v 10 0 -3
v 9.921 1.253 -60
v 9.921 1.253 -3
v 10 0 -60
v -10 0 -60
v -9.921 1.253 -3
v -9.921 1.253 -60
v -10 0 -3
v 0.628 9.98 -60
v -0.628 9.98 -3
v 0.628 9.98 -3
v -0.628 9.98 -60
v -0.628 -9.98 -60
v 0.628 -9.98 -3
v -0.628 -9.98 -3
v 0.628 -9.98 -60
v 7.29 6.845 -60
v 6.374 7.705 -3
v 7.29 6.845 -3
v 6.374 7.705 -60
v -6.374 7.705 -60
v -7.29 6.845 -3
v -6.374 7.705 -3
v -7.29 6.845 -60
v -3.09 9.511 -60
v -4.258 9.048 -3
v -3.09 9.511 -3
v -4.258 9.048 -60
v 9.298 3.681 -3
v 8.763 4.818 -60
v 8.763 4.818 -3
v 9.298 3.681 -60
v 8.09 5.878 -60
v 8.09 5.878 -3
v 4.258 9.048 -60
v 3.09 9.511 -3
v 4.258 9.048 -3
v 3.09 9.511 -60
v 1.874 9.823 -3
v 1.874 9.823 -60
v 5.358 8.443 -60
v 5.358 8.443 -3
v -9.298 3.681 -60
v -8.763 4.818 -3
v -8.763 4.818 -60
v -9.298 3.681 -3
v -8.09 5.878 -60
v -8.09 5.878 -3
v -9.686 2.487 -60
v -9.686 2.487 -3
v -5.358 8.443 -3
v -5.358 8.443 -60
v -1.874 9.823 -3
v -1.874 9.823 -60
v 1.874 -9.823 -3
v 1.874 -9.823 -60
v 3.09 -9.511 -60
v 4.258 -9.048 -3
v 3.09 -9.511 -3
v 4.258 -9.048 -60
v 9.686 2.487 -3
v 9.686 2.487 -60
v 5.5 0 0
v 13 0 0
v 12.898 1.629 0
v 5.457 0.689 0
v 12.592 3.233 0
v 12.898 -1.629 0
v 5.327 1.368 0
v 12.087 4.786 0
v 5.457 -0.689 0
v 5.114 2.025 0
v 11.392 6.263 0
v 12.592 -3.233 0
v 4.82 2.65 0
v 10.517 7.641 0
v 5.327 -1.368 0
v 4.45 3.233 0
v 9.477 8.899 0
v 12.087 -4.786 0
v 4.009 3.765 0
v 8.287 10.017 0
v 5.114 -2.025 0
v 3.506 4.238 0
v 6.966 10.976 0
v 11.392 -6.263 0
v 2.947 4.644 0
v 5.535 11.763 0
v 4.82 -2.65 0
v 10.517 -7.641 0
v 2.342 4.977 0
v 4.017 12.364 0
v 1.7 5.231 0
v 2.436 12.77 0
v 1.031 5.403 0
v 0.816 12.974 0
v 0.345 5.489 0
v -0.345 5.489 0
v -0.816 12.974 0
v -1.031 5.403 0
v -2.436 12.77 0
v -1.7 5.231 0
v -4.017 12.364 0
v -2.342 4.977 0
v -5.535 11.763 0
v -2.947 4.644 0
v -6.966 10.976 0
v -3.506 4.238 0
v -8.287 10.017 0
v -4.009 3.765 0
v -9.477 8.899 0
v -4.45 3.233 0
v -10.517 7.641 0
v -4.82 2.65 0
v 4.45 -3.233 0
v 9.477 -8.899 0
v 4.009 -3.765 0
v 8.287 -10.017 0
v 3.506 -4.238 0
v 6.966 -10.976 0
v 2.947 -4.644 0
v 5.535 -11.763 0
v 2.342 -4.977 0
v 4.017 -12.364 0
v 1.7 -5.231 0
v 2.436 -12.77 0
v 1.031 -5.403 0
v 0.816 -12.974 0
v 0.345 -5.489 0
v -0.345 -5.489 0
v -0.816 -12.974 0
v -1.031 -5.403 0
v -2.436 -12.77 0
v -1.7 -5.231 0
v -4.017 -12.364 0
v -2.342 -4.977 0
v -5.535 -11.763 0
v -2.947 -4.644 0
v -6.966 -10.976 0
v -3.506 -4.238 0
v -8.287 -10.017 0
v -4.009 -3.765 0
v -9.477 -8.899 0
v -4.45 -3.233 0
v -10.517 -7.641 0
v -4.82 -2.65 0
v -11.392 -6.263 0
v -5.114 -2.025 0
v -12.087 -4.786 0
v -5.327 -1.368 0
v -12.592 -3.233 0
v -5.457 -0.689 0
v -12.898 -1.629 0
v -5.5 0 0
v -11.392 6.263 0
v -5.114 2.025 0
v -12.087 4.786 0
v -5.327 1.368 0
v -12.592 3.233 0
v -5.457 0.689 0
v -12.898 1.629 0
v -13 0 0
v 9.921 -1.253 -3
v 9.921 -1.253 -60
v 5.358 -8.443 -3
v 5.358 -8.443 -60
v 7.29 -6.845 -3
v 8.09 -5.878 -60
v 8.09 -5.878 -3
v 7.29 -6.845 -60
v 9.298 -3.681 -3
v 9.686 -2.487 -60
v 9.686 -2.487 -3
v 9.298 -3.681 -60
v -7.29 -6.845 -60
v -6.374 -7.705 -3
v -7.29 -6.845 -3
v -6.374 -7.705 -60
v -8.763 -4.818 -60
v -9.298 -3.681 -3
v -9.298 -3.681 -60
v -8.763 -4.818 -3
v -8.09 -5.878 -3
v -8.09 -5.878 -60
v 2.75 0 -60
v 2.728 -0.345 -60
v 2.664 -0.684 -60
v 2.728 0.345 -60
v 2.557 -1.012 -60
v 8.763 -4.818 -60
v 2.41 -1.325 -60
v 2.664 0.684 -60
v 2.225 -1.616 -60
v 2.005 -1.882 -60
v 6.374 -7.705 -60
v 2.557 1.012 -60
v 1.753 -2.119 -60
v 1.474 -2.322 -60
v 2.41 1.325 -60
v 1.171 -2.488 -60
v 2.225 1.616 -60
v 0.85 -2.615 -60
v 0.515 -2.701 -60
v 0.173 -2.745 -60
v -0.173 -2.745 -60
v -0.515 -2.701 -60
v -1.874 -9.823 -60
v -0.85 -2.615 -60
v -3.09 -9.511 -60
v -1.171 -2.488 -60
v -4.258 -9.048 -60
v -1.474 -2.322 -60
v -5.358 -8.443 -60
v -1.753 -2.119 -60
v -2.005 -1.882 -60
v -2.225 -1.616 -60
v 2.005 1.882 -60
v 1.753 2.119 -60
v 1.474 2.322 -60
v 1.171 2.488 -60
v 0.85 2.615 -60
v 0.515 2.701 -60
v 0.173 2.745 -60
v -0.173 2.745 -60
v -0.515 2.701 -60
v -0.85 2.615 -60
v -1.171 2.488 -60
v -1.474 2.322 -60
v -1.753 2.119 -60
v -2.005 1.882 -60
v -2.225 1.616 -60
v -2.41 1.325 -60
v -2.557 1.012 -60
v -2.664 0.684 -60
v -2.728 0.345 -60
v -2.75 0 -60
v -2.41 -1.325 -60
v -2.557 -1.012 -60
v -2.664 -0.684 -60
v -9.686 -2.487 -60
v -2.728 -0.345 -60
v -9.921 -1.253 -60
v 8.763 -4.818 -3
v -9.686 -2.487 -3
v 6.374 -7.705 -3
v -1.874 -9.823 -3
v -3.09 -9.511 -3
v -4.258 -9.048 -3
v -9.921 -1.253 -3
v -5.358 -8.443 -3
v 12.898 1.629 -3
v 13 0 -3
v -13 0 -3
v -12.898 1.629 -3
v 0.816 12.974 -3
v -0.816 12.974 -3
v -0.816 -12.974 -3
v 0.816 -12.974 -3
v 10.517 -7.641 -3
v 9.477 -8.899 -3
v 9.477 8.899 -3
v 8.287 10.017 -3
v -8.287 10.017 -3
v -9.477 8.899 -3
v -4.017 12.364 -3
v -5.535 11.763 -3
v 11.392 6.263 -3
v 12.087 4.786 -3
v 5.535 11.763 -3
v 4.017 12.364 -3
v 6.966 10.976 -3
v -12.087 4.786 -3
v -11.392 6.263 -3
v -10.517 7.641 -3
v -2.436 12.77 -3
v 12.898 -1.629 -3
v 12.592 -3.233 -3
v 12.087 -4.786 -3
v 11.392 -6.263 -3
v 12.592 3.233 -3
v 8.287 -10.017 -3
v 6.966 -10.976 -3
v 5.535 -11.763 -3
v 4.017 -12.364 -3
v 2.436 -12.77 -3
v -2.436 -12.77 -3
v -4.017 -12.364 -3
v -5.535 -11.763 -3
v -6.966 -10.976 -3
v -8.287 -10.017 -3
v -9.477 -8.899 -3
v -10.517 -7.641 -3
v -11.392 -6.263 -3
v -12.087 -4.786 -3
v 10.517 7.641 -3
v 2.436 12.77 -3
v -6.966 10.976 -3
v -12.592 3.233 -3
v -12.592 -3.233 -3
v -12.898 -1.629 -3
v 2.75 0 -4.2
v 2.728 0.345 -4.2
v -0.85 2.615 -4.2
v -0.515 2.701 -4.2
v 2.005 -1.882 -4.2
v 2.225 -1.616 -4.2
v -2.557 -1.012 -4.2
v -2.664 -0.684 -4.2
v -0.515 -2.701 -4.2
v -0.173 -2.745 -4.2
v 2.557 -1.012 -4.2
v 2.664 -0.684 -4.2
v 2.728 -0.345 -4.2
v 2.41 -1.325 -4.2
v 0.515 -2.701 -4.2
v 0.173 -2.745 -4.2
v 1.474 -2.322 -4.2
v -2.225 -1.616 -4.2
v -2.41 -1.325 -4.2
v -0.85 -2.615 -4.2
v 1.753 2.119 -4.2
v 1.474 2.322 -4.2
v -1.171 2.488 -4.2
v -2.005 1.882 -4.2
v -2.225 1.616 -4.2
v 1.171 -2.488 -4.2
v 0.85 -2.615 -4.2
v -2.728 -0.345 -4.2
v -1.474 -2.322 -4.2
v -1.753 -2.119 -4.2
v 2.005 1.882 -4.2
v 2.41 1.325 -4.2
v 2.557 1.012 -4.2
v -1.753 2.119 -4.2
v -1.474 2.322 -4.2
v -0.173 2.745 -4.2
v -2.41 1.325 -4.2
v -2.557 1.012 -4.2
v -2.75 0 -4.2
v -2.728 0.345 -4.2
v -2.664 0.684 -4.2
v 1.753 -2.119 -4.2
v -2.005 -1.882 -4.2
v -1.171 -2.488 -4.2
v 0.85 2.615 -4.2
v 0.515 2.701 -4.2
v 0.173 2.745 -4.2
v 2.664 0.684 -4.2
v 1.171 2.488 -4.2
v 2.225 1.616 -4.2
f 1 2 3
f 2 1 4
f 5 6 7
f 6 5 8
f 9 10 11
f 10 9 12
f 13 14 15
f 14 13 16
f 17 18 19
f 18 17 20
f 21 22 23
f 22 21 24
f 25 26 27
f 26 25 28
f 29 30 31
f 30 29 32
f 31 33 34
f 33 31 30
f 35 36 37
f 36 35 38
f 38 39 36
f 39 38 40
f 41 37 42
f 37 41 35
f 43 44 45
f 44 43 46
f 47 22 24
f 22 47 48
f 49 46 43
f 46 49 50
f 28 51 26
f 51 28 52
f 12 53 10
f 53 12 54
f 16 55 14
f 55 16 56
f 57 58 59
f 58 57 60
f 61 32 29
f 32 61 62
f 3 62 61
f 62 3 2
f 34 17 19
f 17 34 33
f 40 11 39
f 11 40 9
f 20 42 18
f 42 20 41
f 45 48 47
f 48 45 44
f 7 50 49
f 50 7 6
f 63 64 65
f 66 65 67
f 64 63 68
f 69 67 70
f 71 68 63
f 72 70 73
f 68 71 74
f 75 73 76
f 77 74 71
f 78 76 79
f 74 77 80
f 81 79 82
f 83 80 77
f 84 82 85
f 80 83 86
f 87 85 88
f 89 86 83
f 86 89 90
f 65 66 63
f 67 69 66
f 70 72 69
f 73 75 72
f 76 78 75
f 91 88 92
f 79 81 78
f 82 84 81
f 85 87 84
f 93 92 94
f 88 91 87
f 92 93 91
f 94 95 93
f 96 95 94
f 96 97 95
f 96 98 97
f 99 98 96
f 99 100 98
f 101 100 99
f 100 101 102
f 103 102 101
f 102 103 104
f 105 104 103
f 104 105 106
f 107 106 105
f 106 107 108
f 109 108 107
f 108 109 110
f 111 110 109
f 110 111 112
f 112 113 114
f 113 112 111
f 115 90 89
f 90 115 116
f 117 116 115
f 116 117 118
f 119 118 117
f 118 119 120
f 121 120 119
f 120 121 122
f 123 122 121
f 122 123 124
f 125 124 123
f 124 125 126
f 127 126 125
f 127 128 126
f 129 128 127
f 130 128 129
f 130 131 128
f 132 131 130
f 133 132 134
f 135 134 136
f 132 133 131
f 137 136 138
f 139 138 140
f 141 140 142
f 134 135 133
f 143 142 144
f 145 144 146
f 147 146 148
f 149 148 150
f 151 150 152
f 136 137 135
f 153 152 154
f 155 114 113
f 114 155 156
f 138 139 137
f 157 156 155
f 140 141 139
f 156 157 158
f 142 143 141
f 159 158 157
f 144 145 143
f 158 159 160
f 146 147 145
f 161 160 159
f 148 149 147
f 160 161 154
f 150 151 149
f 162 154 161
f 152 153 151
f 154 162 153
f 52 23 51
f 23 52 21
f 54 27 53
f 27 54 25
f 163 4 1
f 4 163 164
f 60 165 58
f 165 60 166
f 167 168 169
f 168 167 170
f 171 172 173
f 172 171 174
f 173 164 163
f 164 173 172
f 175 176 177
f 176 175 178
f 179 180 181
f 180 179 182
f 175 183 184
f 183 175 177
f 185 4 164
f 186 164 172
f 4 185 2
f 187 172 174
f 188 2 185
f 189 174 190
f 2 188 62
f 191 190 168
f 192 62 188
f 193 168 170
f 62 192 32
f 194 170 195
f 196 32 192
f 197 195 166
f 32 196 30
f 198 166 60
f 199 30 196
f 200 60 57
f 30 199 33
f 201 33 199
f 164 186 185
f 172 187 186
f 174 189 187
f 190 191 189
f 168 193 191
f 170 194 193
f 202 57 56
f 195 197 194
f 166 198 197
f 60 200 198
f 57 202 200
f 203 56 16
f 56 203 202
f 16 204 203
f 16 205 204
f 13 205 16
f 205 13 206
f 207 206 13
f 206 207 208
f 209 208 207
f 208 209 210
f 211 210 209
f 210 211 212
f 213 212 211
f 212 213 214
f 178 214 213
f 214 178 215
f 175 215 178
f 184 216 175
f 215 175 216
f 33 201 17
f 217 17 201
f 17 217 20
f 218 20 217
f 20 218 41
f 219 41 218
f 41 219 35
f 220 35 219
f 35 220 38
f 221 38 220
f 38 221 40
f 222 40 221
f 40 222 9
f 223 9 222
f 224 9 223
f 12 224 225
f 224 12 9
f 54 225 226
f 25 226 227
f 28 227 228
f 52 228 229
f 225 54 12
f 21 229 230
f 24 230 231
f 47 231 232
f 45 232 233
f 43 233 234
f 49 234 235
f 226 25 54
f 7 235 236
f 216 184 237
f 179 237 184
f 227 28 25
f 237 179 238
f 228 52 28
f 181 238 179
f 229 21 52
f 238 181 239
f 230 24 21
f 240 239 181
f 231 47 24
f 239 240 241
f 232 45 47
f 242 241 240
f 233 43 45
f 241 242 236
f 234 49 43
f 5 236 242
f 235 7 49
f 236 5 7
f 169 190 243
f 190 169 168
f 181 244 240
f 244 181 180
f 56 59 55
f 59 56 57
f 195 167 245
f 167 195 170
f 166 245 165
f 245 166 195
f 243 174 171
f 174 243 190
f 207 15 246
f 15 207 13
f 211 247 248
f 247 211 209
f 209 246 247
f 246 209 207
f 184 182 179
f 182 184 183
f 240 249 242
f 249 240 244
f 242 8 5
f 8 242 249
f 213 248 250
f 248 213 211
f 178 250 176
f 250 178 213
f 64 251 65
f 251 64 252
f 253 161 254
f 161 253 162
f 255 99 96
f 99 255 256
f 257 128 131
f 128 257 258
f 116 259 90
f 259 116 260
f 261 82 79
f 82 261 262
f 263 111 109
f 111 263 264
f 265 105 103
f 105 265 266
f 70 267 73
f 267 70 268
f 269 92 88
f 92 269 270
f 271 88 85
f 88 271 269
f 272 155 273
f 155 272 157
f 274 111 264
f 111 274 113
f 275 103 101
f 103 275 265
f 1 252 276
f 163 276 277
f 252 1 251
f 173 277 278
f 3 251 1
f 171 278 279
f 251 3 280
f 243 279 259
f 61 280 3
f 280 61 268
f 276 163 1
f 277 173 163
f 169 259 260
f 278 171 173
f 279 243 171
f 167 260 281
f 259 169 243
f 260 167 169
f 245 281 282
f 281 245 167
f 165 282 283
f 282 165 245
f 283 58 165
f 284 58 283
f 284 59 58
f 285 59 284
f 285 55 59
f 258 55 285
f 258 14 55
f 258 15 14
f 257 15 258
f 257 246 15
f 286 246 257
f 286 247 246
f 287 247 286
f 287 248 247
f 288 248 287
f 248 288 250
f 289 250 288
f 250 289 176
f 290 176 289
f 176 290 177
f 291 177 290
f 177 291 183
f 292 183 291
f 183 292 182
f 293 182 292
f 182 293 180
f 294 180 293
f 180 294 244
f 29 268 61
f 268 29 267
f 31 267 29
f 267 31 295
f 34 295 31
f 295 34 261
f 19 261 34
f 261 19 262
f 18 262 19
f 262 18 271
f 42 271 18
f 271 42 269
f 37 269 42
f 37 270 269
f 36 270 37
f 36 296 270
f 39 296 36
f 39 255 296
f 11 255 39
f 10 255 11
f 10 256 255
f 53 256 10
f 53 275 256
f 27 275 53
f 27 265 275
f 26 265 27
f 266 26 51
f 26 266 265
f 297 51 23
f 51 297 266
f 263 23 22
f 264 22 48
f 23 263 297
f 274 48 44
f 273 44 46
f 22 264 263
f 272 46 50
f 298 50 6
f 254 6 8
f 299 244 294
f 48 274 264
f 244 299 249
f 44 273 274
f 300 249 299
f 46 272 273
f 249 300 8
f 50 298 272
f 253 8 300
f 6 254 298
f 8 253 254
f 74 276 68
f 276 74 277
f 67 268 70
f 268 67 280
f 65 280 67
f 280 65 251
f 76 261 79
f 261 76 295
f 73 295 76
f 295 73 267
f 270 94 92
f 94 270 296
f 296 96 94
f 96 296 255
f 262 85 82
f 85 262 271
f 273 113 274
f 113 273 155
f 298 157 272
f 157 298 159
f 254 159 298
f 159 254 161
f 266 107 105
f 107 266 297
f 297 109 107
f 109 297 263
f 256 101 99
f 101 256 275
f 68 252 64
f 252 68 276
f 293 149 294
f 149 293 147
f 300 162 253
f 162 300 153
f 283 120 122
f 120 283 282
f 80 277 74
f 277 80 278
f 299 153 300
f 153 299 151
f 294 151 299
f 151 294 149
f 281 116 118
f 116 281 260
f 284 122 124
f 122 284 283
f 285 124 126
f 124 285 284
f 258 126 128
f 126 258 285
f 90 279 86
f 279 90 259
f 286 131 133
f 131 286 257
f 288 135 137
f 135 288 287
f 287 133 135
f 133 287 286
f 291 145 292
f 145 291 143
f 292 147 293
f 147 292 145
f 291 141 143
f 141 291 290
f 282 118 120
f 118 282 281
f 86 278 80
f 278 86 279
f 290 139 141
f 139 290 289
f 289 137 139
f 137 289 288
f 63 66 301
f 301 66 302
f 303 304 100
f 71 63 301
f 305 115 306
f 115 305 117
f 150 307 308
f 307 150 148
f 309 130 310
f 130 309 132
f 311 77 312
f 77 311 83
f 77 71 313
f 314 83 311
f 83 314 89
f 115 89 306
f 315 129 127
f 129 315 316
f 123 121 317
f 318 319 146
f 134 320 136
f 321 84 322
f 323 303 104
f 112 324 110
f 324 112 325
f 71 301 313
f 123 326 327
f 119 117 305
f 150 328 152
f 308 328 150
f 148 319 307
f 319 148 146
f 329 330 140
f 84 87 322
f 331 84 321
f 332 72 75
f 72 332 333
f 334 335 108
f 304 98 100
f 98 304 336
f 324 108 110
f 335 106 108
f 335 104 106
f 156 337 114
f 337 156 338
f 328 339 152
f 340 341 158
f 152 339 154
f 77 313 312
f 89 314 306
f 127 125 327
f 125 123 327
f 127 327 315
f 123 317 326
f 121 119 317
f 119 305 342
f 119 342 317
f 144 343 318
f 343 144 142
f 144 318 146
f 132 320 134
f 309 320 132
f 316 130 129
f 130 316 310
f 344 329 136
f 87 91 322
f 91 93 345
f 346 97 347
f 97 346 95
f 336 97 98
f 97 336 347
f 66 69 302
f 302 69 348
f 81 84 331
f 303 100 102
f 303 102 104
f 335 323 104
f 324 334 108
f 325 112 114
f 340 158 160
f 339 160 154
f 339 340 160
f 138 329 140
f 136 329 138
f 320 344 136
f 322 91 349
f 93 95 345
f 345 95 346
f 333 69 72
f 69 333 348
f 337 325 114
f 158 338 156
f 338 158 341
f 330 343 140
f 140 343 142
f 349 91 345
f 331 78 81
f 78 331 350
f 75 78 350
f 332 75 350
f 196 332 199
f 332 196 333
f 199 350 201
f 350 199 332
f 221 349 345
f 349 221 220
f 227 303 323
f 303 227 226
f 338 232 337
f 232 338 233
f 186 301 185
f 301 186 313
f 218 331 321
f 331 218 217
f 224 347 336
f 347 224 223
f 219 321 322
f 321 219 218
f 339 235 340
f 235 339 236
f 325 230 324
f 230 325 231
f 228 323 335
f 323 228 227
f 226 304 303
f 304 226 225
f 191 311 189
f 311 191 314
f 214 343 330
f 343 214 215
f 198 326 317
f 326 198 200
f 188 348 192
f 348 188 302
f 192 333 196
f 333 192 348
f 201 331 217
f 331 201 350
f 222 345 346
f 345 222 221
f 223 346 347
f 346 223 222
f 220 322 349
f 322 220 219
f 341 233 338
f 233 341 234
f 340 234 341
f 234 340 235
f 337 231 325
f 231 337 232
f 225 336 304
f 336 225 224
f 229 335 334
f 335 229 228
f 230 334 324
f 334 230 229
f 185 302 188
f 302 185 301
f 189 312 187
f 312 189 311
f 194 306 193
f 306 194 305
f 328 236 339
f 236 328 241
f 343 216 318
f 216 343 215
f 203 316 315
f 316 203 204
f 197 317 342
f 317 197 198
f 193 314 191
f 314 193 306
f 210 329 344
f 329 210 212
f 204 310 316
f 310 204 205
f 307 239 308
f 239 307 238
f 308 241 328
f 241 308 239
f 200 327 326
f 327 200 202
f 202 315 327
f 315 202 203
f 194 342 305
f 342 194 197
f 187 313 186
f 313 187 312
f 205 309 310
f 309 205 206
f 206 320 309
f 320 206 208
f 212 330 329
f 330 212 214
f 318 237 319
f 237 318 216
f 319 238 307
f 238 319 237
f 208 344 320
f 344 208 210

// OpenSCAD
$fn = 50;


difference() {
	union() {
		translate(v = [0, 0, -60.0000000000]) {
			cylinder(h = 60, r = 10.0000000000);
		}
		translate(v = [0, 0, -3.0000000000]) {
			cylinder(h = 3, r = 13.0000000000);
		}
	}
	union() {
		translate(v = [0, 0, 0]) {
			rotate(a = [0, 0, 0]) {
				difference() {
					union() {
						#translate(v = [0, 0, -60.0000000000]) {
							cylinder(h = 60, r = 2.2500000000);
						}
						#translate(v = [0, 0, -4.2000000000]) {
							cylinder(h = 4.2000000000, r1 = 2.7500000000, r2 = 5.5000000000);
						}
						#translate(v = [0, 0, -60.0000000000]) {
							cylinder(h = 60, r = 2.7500000000);
						}
						#translate(v = [0, 0, -60.0000000000]) {
							cylinder(h = 60, r = 2.2500000000);
						}
					}
					union();
				}
			}
		}
	}
}
